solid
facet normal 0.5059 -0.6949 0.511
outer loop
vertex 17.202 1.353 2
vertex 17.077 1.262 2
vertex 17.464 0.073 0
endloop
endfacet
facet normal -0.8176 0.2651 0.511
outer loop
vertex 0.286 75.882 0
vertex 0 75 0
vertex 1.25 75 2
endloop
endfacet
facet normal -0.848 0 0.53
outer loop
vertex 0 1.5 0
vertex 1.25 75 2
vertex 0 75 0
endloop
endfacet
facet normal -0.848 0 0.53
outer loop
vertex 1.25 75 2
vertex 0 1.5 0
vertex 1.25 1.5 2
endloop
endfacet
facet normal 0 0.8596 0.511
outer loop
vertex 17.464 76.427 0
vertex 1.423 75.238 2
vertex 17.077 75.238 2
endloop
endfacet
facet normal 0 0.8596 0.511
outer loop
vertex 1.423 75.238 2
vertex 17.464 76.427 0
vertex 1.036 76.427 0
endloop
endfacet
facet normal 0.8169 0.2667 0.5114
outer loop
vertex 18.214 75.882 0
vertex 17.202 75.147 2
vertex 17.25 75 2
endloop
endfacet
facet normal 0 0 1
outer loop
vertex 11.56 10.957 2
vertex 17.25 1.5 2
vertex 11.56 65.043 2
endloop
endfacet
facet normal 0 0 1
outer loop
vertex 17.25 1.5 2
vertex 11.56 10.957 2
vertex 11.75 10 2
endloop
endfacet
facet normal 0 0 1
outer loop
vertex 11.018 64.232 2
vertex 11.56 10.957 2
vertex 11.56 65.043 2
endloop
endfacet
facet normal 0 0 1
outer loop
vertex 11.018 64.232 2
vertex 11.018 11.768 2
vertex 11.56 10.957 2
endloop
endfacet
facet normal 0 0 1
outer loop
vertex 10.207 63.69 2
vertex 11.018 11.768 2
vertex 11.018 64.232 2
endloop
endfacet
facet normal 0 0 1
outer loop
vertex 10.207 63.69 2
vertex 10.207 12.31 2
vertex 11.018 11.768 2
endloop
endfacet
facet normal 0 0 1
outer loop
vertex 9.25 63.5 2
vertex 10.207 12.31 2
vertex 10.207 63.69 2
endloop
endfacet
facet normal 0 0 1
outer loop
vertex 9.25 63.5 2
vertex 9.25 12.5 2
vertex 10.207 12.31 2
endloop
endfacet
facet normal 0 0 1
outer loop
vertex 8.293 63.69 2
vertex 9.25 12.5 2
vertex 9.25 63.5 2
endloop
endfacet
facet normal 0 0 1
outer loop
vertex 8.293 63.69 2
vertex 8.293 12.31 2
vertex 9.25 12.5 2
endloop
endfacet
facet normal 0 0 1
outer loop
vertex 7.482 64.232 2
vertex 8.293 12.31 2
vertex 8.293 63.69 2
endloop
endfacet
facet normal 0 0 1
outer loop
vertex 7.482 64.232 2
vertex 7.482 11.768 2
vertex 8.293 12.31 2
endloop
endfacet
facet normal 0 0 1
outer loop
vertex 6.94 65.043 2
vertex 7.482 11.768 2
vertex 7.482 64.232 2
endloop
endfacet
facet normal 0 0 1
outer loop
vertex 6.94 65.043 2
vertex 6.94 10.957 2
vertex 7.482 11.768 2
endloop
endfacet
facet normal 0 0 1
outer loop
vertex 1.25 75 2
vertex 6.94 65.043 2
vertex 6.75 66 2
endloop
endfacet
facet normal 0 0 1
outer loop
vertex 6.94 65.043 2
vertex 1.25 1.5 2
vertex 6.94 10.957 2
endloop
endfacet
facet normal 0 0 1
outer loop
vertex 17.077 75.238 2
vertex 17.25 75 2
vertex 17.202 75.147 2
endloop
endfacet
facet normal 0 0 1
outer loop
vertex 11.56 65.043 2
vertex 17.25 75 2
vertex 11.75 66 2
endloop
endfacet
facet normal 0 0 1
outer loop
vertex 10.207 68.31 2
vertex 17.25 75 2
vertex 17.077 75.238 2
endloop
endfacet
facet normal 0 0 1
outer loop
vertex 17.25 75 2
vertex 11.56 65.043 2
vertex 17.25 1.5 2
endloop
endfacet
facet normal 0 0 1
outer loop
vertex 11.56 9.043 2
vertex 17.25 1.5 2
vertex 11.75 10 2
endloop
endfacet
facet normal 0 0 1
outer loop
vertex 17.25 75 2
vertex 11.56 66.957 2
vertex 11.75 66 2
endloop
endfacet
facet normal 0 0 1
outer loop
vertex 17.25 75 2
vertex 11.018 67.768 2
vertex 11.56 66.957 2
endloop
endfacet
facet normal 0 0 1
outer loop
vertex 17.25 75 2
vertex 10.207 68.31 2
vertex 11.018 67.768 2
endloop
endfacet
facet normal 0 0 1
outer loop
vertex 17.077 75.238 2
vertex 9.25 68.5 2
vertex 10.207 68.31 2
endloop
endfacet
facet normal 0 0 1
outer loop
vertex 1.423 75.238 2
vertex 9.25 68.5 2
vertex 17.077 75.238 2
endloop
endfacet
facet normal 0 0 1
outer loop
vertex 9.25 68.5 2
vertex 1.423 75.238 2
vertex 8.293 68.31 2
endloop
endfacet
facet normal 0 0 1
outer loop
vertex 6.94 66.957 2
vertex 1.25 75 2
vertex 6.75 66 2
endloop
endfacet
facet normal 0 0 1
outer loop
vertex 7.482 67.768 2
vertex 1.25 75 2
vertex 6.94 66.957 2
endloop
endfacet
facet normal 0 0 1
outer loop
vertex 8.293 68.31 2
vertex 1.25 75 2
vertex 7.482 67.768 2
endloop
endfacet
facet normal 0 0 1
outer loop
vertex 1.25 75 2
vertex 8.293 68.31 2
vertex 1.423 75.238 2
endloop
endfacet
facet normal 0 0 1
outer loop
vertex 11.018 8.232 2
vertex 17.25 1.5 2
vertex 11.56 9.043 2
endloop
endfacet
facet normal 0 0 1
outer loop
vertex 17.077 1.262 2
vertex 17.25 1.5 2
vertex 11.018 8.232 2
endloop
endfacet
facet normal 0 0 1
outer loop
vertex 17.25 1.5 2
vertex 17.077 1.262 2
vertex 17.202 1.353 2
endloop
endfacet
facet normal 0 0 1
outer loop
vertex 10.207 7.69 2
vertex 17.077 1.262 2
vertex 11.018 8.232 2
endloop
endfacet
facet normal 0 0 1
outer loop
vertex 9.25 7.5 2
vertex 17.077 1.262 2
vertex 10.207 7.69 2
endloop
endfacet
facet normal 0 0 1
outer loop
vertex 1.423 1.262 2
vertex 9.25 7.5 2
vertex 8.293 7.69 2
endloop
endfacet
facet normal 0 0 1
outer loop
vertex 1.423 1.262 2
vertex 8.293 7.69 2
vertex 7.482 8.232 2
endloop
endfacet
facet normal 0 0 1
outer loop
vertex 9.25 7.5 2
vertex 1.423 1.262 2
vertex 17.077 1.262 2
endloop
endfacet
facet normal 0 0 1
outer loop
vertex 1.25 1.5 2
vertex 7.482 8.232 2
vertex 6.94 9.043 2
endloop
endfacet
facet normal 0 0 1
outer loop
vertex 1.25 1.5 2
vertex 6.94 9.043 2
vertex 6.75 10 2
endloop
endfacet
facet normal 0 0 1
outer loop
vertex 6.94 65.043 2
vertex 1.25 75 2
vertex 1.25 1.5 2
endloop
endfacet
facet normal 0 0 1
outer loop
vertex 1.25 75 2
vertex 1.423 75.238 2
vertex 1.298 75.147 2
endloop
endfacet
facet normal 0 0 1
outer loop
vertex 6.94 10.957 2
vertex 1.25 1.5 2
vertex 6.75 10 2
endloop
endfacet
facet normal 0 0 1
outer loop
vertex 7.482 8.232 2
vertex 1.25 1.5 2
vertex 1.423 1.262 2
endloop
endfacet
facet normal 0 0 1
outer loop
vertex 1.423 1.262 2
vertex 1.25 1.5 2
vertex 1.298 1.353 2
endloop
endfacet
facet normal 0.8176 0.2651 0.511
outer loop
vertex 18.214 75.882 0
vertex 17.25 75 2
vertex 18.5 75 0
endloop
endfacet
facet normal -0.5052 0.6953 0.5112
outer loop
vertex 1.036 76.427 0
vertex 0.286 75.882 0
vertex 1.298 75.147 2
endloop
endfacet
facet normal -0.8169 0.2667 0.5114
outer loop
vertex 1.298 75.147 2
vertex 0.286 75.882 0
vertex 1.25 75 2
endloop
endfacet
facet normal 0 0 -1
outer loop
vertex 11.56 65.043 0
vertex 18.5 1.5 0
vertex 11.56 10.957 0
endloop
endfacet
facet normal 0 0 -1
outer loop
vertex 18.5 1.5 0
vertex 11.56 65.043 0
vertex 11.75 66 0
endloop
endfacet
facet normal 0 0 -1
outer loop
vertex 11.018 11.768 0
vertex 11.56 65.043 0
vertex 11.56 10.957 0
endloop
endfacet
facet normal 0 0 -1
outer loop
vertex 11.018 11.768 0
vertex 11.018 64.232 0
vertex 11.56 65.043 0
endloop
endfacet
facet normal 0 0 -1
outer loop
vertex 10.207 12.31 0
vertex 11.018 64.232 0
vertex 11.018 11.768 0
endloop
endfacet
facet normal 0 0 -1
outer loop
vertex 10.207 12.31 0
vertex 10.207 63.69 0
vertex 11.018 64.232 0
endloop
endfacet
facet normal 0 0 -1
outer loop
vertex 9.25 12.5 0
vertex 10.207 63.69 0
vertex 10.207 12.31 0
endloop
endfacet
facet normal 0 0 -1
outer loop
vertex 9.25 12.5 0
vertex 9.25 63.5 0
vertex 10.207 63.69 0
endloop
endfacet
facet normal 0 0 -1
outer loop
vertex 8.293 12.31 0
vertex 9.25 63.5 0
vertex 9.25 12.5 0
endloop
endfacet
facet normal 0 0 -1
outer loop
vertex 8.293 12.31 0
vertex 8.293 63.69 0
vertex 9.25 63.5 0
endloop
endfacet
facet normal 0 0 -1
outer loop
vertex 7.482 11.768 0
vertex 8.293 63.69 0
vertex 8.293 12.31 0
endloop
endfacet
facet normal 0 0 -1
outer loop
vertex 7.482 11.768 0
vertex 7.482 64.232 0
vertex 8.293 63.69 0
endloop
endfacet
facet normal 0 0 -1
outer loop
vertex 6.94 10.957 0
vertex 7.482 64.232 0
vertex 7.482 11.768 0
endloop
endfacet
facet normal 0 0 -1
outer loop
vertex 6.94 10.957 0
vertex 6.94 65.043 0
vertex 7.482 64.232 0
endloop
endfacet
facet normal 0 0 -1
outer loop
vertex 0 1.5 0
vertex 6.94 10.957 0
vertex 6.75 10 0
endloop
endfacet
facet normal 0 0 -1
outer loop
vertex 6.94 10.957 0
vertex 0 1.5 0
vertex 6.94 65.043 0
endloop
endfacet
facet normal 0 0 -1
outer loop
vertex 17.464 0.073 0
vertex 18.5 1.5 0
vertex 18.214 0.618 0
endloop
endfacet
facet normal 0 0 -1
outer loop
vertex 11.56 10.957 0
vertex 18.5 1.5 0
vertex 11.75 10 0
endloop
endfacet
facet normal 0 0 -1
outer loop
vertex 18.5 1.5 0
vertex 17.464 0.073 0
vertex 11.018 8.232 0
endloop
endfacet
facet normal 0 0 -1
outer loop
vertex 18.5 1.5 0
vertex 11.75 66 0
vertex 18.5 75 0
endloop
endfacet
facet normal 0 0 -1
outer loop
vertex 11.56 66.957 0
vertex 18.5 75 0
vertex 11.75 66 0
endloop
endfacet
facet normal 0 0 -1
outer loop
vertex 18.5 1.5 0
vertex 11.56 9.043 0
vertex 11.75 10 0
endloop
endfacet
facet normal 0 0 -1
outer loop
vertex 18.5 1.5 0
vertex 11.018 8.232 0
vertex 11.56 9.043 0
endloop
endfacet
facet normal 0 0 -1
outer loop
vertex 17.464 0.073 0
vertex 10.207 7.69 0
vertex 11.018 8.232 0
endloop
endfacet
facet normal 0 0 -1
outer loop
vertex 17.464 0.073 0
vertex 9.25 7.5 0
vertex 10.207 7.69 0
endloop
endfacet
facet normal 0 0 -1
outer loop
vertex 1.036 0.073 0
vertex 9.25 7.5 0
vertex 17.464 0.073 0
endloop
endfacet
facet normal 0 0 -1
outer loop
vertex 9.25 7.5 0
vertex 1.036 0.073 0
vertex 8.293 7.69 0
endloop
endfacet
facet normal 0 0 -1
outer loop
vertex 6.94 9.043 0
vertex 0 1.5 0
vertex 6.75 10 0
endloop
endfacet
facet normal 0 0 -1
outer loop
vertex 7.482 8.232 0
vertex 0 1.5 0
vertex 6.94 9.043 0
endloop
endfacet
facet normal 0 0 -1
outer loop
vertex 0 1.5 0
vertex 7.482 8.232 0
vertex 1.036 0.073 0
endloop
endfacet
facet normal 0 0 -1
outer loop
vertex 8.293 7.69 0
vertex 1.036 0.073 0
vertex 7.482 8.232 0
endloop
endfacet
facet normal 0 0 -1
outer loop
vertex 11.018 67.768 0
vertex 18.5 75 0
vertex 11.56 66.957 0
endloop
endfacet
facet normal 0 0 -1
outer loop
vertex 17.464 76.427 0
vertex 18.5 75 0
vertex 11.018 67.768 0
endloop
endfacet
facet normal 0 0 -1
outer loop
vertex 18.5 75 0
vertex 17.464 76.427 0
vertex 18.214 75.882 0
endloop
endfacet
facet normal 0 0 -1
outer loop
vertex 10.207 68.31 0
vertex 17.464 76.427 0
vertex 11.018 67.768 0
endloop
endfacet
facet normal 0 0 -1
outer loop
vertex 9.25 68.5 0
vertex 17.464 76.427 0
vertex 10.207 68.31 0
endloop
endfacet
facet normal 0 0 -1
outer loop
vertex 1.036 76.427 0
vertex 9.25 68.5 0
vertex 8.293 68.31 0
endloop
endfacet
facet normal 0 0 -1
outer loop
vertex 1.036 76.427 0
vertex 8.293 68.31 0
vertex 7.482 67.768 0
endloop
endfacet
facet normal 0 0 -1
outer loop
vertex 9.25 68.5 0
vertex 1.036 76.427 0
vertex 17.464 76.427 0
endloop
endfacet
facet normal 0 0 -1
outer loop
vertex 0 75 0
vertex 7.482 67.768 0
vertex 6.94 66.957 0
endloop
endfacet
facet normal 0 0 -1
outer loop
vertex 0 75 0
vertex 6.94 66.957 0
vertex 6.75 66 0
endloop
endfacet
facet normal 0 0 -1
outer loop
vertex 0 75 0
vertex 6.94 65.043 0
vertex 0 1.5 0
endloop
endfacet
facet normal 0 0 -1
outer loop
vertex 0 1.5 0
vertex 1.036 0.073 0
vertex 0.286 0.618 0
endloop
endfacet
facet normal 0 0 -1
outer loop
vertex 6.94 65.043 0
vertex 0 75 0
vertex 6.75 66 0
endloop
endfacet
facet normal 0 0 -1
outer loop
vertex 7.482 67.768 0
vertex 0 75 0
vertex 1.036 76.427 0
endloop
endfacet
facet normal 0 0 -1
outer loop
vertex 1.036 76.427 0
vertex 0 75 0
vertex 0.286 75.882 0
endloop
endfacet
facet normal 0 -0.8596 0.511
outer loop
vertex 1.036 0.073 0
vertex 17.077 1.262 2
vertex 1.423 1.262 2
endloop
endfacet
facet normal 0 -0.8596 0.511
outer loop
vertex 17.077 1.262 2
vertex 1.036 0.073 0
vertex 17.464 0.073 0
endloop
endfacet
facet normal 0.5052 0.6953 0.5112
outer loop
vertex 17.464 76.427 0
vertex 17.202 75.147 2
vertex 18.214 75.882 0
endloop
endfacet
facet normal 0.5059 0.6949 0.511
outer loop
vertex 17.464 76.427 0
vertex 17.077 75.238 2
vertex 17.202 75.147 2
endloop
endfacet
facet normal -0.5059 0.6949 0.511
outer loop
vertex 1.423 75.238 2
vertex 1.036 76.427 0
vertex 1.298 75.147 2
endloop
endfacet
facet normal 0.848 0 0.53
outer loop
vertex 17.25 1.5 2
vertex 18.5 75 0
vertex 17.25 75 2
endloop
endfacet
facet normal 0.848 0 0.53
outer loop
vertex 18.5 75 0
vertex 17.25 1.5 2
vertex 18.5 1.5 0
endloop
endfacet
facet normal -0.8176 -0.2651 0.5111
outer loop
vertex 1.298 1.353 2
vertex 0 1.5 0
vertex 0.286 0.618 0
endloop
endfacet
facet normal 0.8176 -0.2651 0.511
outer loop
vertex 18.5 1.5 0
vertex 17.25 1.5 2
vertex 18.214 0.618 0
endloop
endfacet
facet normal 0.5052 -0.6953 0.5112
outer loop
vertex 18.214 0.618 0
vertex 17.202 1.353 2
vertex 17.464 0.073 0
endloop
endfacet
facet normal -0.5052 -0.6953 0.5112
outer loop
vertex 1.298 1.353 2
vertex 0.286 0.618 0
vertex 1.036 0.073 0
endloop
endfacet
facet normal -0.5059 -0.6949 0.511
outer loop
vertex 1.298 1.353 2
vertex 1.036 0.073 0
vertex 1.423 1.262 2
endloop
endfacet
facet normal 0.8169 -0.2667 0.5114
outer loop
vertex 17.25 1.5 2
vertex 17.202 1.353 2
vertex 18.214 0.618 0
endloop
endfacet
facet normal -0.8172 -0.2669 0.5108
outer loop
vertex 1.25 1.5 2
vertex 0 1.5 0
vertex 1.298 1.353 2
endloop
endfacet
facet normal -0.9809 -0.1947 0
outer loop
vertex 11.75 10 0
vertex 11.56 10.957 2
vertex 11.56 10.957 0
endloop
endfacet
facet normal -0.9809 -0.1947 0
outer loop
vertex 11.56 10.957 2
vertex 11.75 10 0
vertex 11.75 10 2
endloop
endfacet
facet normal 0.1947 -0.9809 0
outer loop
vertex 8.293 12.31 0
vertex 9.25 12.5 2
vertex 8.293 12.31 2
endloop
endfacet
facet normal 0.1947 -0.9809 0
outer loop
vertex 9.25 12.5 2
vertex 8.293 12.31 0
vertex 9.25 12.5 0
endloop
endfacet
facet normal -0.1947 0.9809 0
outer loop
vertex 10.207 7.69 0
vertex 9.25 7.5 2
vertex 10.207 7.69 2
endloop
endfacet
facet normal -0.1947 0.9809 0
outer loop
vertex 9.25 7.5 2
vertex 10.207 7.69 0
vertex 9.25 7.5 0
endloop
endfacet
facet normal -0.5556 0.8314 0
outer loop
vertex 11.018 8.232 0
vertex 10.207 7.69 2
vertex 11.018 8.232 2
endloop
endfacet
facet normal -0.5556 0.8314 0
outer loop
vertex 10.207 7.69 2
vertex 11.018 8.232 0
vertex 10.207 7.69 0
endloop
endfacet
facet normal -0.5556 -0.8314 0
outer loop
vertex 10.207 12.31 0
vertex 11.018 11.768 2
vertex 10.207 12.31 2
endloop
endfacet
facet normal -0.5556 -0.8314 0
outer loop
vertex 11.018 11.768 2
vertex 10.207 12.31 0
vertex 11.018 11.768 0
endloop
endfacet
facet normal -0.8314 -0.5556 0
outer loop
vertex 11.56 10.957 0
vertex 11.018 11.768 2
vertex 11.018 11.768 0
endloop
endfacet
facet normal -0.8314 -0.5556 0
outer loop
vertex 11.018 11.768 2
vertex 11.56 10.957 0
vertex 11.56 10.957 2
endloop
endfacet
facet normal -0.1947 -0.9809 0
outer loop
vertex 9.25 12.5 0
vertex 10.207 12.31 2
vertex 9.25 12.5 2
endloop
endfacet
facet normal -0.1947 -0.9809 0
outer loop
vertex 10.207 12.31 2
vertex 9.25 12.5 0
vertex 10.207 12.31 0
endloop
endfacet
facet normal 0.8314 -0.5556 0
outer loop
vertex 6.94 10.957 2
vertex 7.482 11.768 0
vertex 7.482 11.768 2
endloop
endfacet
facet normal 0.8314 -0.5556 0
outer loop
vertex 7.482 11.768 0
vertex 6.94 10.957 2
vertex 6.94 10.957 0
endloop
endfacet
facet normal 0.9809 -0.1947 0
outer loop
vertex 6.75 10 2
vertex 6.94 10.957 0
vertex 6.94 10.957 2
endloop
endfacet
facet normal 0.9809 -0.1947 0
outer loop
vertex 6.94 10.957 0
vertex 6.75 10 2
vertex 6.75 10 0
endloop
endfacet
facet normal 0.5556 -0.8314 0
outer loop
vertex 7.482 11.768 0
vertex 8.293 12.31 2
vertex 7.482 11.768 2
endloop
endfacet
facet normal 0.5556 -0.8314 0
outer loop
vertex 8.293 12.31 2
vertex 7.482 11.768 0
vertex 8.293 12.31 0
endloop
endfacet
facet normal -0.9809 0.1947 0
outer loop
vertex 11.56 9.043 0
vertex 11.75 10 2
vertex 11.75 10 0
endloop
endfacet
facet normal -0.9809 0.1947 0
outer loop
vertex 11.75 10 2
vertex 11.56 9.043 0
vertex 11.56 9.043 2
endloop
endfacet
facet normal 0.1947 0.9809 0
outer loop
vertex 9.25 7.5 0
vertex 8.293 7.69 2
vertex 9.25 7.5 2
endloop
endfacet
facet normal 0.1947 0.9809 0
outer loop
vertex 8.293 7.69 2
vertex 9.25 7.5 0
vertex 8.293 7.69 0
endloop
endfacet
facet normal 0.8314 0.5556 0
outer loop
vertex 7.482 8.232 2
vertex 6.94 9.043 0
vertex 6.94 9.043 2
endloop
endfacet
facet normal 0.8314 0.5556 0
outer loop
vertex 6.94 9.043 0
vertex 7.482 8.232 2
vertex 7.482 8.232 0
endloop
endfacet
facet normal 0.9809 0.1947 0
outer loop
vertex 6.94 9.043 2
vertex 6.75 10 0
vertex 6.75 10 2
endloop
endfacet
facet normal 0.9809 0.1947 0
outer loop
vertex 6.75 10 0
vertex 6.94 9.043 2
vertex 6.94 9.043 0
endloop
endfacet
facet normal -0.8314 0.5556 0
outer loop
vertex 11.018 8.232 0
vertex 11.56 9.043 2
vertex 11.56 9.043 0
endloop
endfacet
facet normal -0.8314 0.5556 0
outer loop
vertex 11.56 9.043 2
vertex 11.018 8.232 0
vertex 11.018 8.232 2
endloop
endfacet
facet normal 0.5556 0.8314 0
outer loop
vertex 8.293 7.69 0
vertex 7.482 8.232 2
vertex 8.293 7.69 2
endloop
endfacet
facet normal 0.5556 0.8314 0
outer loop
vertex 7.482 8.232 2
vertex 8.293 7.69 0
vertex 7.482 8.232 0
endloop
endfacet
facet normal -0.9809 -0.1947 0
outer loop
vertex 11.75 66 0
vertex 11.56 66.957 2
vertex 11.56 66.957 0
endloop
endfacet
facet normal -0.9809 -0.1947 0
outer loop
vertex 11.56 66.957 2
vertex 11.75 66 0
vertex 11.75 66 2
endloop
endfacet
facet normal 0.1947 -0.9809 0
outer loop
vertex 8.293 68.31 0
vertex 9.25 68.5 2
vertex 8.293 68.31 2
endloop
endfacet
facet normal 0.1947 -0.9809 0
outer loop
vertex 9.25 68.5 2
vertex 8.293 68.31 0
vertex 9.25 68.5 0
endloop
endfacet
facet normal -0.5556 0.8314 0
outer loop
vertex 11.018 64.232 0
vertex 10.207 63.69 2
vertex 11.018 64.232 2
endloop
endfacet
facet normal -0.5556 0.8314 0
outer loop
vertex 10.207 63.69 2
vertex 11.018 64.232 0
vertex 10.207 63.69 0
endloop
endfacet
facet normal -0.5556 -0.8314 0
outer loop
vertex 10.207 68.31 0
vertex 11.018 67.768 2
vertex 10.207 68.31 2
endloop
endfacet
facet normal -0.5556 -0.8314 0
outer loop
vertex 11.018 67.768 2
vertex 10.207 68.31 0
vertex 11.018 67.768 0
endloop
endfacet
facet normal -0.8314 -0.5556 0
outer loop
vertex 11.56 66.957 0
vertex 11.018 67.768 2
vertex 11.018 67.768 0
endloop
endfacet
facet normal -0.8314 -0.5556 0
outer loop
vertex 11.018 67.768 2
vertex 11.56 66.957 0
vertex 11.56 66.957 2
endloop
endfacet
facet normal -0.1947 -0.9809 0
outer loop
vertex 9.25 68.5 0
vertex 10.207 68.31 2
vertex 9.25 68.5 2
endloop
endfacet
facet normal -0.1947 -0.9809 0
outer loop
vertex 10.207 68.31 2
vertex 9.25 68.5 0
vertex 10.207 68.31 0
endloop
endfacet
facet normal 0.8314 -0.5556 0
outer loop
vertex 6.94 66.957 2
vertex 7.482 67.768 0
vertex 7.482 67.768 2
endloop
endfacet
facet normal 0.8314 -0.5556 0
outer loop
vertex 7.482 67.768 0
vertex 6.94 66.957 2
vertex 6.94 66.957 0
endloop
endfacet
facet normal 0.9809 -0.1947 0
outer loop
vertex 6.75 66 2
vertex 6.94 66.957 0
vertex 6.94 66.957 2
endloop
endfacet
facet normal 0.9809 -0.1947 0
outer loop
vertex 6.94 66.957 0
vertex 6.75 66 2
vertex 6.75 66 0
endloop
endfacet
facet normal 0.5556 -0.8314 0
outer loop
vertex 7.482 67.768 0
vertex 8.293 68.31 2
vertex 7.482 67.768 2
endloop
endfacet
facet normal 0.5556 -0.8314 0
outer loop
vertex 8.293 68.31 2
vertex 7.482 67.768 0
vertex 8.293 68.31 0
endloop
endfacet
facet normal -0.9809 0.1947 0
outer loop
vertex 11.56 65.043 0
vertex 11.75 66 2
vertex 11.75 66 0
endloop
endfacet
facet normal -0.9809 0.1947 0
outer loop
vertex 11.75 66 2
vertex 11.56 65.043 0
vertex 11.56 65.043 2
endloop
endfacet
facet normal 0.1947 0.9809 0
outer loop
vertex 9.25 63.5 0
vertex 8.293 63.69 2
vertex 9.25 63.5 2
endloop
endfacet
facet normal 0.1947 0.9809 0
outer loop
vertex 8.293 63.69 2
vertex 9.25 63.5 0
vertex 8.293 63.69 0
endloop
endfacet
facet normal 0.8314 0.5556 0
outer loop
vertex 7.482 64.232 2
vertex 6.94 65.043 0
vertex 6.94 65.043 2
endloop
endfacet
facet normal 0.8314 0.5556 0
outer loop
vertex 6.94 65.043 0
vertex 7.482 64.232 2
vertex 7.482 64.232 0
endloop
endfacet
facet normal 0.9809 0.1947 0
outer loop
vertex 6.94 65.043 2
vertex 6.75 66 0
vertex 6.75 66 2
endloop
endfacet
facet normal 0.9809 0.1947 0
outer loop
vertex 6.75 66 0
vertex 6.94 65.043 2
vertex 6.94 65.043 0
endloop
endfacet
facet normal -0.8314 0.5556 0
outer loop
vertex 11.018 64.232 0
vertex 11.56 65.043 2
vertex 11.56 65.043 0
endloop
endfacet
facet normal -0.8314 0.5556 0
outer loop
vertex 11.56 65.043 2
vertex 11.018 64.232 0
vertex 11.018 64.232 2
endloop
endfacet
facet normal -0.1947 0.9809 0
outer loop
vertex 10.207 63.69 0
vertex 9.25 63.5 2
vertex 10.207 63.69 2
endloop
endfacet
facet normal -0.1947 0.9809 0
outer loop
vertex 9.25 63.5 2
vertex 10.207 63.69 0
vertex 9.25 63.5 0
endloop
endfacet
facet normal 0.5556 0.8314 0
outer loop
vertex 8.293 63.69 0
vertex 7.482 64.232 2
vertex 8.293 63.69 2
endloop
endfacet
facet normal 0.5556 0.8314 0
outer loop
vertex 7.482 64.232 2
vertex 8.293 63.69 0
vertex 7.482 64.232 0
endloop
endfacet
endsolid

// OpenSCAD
$fa = 0.4;
$fs = 1.0;

difference() {
        
    translate([0,1.5,0])
    hull() {
        translate([1.5,0,0])
        cylinder(d1=3, d2=0.5, h=2);
        
        translate([18.5 - 1.5, 0, 0])
        cylinder(d1=3, d2=0.5, h=2);
        
        translate([1.5,75-1.5,0])
        cylinder(d1=3, d2=0.5, h=2);
        
        translate([18.5 - 1.5, 75-1.5, 0])
        cylinder(d1=3, d2=0.5, h=2);
    }
    
    translate([18.5/2, 10, 0])
    cylinder(d=5, h=2);
    
    translate([18.5/2, 66, 0])
    cylinder(d=5, h=2);
}
